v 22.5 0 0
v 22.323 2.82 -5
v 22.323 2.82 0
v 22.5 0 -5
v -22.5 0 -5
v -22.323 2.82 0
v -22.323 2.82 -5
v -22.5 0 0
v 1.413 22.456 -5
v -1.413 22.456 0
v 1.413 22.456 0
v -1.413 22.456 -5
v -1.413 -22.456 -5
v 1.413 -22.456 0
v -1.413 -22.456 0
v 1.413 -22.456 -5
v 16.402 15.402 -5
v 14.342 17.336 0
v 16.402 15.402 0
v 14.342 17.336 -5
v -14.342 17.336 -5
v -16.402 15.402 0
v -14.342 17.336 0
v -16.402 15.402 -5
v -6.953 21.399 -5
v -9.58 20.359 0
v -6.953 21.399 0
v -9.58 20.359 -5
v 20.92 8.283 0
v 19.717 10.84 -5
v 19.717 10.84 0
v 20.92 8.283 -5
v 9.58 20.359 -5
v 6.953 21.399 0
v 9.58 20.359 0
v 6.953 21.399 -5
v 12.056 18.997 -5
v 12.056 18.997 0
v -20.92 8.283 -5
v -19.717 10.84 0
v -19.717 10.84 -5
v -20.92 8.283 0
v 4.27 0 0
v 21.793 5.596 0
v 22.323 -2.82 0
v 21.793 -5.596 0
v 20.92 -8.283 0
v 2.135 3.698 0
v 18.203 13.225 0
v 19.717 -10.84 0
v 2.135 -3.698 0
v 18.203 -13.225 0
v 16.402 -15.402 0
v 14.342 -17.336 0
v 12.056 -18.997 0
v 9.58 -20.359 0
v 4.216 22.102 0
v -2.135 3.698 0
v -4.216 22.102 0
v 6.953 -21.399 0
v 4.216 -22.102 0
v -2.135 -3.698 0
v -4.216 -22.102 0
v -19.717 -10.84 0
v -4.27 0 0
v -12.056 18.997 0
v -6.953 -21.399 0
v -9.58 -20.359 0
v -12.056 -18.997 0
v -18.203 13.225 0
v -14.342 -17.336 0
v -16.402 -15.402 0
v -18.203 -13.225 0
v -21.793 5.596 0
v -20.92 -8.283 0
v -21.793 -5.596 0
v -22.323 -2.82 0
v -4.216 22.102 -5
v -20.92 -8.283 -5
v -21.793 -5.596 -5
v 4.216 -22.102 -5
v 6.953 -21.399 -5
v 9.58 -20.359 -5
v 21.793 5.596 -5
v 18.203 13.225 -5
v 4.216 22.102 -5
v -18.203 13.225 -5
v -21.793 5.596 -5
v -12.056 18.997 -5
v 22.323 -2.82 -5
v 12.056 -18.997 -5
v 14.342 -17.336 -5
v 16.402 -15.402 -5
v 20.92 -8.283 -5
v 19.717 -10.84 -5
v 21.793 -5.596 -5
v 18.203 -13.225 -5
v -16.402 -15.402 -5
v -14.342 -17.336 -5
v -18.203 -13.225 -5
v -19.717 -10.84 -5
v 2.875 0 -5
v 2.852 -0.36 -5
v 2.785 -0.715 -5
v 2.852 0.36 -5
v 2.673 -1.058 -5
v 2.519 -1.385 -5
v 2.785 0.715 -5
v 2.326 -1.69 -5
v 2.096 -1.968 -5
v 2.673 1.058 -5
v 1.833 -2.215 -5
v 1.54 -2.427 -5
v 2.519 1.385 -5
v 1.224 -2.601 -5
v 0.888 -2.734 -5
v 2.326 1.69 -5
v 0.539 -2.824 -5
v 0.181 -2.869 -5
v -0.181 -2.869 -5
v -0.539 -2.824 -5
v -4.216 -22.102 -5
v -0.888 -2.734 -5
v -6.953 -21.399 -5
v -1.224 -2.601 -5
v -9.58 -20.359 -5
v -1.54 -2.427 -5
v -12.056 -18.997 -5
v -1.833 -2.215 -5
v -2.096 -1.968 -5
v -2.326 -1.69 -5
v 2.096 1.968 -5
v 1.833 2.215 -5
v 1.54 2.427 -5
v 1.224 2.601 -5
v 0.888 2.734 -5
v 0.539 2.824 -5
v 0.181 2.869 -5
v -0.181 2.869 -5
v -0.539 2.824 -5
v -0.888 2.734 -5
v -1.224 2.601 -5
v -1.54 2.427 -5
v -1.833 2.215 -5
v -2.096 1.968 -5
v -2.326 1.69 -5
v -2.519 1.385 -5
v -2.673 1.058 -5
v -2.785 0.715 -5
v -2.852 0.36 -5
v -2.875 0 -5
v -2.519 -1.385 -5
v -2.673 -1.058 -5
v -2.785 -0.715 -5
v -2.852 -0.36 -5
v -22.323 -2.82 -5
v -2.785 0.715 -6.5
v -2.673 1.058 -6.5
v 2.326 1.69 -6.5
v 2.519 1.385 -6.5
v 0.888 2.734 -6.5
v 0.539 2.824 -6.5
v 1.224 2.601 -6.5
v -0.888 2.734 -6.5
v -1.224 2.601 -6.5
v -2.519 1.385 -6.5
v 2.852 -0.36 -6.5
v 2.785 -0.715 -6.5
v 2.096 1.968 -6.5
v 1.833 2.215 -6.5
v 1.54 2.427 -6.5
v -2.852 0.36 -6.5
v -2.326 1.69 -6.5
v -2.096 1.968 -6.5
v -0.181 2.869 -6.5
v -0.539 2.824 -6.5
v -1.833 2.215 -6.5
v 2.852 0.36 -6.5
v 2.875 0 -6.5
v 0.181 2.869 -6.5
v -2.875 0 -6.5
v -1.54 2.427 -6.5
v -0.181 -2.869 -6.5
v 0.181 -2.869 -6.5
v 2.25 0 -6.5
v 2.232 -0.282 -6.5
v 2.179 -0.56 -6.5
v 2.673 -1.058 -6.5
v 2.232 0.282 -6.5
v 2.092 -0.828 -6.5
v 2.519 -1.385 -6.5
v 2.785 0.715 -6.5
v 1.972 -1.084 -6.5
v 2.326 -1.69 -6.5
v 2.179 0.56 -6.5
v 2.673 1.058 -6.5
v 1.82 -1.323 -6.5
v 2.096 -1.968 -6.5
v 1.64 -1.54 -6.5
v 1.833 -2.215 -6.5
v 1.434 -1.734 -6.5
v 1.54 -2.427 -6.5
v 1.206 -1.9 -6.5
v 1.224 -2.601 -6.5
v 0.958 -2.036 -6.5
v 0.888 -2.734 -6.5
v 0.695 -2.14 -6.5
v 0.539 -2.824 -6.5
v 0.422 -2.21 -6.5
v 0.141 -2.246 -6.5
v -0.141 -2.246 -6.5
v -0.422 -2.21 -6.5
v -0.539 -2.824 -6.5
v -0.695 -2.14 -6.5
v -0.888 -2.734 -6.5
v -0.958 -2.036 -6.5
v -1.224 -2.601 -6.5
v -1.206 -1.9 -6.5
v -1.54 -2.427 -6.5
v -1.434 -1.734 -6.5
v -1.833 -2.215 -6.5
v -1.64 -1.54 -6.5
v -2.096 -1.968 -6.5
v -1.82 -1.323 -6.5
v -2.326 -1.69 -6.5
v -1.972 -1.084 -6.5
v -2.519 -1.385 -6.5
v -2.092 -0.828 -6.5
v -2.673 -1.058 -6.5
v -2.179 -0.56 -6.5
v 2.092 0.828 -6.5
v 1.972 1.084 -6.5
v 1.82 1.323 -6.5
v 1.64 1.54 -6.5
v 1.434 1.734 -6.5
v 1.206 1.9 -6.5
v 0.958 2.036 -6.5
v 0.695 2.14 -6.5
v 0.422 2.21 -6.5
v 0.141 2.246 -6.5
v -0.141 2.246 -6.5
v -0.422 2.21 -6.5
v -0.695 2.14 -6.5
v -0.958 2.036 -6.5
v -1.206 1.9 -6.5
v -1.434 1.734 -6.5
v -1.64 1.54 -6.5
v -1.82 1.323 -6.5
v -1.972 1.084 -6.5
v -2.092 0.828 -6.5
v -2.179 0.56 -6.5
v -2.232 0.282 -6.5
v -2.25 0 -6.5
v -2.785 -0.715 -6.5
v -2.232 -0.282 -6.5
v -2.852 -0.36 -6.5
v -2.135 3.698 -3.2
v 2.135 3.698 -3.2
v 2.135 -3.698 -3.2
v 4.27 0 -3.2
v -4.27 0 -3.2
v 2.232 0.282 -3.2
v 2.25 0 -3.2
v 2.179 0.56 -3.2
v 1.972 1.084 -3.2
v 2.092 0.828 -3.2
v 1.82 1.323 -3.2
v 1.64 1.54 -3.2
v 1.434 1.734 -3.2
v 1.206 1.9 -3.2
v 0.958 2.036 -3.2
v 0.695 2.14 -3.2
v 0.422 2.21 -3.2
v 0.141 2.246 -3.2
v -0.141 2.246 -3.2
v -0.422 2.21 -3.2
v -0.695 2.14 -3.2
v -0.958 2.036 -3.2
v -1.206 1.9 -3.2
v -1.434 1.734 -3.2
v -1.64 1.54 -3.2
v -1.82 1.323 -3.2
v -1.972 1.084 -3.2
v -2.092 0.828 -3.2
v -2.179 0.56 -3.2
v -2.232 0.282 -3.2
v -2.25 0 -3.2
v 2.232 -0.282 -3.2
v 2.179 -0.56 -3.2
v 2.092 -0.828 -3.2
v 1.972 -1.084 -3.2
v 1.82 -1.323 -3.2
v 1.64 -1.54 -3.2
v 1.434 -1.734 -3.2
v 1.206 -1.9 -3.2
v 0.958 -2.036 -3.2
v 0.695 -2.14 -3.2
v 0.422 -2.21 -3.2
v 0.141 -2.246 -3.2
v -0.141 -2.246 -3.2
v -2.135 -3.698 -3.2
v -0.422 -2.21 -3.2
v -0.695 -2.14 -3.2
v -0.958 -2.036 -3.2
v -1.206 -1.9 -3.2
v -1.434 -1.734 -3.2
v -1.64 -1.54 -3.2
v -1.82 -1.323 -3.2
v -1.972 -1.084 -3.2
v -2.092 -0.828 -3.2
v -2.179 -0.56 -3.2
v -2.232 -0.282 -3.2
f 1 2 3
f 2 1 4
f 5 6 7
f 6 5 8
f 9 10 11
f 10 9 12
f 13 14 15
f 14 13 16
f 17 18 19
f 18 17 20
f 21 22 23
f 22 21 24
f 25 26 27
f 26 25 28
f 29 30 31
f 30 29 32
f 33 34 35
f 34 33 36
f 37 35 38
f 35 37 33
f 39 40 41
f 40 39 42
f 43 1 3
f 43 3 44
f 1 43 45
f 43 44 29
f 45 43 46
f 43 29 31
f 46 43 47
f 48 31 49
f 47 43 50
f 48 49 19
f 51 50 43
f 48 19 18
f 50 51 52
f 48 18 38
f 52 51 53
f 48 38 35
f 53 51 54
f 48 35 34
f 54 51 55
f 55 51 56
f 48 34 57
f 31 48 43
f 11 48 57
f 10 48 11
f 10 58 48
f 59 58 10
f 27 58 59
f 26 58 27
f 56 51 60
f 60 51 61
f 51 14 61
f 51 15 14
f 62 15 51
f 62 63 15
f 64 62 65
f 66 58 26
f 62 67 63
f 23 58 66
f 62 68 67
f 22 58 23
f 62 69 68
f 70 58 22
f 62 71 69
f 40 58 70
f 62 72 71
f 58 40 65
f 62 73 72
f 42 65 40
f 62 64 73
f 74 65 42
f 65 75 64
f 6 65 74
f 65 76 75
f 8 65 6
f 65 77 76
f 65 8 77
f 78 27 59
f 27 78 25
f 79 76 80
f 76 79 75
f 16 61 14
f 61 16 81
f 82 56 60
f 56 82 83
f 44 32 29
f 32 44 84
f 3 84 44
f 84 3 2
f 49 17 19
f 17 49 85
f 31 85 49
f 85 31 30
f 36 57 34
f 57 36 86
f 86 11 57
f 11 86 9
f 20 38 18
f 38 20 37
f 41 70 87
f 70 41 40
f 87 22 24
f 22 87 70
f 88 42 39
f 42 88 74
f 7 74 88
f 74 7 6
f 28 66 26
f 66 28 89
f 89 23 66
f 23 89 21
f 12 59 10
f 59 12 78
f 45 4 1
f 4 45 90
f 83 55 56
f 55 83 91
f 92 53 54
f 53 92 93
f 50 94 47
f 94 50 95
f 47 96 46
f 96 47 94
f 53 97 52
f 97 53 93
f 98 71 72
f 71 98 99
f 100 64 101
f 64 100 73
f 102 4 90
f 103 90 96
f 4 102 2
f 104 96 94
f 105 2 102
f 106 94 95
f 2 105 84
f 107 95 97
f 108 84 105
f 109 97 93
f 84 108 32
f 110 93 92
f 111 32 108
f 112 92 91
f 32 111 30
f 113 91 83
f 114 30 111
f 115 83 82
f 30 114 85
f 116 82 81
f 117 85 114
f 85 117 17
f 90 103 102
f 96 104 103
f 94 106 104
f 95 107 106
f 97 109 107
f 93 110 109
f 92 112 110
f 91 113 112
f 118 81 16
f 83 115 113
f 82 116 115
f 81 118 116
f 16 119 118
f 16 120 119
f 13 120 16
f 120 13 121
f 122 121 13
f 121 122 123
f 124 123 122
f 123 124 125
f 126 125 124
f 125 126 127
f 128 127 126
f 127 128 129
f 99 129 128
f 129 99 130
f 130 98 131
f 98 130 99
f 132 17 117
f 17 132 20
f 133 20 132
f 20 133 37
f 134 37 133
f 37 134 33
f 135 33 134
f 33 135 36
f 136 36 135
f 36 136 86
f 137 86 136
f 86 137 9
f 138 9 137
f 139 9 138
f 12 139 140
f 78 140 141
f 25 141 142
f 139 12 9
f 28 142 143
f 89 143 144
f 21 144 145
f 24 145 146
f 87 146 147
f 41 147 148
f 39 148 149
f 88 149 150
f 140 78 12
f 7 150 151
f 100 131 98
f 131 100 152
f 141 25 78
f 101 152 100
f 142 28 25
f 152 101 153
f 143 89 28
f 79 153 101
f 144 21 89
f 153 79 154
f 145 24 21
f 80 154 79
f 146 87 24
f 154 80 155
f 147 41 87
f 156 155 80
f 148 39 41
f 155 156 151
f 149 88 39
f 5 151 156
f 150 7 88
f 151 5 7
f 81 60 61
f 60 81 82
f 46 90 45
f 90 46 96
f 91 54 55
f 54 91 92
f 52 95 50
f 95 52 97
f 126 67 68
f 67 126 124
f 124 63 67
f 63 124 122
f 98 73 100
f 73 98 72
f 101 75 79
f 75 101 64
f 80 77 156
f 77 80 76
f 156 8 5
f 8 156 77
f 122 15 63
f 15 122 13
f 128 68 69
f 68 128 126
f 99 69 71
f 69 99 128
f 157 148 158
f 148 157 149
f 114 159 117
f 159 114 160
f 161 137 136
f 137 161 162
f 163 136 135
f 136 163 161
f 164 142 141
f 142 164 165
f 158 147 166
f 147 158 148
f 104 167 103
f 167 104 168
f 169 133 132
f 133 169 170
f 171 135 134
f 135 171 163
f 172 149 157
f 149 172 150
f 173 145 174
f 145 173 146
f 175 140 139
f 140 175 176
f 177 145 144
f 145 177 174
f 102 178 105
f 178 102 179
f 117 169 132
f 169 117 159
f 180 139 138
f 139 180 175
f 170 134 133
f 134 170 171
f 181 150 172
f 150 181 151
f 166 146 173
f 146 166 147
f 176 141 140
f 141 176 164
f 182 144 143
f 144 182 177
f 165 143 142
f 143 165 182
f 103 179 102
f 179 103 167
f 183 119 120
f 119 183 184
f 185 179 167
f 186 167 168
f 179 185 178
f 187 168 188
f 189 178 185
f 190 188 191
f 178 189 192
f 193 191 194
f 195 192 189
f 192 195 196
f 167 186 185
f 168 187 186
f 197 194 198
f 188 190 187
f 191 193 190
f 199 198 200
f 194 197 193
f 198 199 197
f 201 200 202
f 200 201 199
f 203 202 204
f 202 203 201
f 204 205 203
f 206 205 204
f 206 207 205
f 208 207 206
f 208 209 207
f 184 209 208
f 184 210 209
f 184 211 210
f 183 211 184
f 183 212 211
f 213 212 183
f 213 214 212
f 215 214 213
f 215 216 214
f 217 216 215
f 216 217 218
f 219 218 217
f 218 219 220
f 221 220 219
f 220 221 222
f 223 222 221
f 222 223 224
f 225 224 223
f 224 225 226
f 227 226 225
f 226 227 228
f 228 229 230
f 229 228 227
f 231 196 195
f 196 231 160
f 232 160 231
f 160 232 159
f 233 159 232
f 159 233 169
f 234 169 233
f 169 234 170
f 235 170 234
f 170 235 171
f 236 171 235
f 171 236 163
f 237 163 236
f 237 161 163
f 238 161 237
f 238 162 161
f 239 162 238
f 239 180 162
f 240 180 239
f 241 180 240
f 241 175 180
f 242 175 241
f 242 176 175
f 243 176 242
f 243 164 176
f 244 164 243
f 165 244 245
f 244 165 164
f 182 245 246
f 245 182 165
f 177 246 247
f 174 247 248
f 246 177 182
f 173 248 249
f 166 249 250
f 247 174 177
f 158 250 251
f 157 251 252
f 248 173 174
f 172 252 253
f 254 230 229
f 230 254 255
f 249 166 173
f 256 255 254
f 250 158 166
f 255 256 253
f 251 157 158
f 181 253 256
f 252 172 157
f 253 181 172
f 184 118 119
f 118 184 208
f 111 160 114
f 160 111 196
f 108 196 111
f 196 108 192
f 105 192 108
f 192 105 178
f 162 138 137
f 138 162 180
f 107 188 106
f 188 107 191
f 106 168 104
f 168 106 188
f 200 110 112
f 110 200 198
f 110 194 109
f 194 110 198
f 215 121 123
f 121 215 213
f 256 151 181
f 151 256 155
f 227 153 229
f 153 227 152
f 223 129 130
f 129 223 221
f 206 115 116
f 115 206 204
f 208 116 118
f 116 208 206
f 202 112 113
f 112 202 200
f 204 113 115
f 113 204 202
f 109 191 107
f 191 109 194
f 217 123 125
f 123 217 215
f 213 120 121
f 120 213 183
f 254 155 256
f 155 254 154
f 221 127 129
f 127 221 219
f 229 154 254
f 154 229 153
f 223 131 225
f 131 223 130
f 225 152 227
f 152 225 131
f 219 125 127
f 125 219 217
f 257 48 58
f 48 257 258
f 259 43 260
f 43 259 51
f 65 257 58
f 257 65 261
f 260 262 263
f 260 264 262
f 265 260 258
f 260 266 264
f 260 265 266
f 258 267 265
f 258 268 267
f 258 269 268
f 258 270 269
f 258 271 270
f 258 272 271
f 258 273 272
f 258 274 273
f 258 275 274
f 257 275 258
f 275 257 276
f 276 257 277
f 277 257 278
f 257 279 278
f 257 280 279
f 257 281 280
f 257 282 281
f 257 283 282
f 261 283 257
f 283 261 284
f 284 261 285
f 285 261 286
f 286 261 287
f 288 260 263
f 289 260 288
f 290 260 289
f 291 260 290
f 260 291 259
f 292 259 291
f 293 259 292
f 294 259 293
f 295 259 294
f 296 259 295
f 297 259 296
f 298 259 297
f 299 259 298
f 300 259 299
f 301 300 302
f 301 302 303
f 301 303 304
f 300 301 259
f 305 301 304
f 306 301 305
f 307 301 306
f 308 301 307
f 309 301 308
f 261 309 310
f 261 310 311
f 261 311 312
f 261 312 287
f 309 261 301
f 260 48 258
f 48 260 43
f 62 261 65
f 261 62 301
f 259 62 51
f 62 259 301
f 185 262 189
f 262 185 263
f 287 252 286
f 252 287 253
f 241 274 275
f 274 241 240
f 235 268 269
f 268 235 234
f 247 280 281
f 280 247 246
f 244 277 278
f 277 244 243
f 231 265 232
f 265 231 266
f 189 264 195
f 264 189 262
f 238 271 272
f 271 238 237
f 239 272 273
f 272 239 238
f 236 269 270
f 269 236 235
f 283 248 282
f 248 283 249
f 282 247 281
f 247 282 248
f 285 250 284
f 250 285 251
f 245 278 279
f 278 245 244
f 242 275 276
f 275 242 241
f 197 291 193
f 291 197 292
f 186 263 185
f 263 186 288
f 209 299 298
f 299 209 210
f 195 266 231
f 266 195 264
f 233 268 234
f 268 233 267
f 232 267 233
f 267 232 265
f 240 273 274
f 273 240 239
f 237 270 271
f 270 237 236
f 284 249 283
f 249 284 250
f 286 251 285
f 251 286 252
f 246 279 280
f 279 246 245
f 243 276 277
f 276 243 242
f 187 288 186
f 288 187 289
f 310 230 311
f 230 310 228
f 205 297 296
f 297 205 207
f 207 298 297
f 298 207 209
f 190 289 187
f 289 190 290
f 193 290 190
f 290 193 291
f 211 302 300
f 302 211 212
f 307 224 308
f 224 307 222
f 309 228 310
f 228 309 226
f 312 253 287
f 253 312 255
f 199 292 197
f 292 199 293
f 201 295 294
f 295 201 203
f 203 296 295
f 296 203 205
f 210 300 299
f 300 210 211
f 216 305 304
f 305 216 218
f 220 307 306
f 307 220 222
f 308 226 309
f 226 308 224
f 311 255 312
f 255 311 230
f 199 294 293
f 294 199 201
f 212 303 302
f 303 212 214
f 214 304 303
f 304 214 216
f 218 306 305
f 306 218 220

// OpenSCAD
$fn = 50;


difference() {
	union() {
		translate(v = [0, 0, -5.0000000000]) {
			cylinder(h = 5.0000000000, r = 22.5000000000);
		}
		translate(v = [0, 0, -6.5000000000]) {
			cylinder(h = 6.5000000000, r = 2.8750000000);
		}
	}
	union() {
		translate(v = [0, 0, 0]) {
			rotate(a = [0, 0, 0]) {
				difference() {
					union() {
						translate(v = [0, 0, -3.2000000000]) {
							linear_extrude(height = 3.2000000000) {
								polygon(points = [[4.2698000000, 0.0000000000], [2.1349000000, 3.6977552691], [-2.1349000000, 3.6977552691], [-4.2698000000, 0.0000000000], [-2.1349000000, -3.6977552691], [2.1349000000, -3.6977552691]]);
							}
						}
					}
					union();
				}
			}
		}
		#translate(v = [0, 0, -100.0000000000]) {
			cylinder(h = 200, r = 2.2500000000);
		}
	}
}
